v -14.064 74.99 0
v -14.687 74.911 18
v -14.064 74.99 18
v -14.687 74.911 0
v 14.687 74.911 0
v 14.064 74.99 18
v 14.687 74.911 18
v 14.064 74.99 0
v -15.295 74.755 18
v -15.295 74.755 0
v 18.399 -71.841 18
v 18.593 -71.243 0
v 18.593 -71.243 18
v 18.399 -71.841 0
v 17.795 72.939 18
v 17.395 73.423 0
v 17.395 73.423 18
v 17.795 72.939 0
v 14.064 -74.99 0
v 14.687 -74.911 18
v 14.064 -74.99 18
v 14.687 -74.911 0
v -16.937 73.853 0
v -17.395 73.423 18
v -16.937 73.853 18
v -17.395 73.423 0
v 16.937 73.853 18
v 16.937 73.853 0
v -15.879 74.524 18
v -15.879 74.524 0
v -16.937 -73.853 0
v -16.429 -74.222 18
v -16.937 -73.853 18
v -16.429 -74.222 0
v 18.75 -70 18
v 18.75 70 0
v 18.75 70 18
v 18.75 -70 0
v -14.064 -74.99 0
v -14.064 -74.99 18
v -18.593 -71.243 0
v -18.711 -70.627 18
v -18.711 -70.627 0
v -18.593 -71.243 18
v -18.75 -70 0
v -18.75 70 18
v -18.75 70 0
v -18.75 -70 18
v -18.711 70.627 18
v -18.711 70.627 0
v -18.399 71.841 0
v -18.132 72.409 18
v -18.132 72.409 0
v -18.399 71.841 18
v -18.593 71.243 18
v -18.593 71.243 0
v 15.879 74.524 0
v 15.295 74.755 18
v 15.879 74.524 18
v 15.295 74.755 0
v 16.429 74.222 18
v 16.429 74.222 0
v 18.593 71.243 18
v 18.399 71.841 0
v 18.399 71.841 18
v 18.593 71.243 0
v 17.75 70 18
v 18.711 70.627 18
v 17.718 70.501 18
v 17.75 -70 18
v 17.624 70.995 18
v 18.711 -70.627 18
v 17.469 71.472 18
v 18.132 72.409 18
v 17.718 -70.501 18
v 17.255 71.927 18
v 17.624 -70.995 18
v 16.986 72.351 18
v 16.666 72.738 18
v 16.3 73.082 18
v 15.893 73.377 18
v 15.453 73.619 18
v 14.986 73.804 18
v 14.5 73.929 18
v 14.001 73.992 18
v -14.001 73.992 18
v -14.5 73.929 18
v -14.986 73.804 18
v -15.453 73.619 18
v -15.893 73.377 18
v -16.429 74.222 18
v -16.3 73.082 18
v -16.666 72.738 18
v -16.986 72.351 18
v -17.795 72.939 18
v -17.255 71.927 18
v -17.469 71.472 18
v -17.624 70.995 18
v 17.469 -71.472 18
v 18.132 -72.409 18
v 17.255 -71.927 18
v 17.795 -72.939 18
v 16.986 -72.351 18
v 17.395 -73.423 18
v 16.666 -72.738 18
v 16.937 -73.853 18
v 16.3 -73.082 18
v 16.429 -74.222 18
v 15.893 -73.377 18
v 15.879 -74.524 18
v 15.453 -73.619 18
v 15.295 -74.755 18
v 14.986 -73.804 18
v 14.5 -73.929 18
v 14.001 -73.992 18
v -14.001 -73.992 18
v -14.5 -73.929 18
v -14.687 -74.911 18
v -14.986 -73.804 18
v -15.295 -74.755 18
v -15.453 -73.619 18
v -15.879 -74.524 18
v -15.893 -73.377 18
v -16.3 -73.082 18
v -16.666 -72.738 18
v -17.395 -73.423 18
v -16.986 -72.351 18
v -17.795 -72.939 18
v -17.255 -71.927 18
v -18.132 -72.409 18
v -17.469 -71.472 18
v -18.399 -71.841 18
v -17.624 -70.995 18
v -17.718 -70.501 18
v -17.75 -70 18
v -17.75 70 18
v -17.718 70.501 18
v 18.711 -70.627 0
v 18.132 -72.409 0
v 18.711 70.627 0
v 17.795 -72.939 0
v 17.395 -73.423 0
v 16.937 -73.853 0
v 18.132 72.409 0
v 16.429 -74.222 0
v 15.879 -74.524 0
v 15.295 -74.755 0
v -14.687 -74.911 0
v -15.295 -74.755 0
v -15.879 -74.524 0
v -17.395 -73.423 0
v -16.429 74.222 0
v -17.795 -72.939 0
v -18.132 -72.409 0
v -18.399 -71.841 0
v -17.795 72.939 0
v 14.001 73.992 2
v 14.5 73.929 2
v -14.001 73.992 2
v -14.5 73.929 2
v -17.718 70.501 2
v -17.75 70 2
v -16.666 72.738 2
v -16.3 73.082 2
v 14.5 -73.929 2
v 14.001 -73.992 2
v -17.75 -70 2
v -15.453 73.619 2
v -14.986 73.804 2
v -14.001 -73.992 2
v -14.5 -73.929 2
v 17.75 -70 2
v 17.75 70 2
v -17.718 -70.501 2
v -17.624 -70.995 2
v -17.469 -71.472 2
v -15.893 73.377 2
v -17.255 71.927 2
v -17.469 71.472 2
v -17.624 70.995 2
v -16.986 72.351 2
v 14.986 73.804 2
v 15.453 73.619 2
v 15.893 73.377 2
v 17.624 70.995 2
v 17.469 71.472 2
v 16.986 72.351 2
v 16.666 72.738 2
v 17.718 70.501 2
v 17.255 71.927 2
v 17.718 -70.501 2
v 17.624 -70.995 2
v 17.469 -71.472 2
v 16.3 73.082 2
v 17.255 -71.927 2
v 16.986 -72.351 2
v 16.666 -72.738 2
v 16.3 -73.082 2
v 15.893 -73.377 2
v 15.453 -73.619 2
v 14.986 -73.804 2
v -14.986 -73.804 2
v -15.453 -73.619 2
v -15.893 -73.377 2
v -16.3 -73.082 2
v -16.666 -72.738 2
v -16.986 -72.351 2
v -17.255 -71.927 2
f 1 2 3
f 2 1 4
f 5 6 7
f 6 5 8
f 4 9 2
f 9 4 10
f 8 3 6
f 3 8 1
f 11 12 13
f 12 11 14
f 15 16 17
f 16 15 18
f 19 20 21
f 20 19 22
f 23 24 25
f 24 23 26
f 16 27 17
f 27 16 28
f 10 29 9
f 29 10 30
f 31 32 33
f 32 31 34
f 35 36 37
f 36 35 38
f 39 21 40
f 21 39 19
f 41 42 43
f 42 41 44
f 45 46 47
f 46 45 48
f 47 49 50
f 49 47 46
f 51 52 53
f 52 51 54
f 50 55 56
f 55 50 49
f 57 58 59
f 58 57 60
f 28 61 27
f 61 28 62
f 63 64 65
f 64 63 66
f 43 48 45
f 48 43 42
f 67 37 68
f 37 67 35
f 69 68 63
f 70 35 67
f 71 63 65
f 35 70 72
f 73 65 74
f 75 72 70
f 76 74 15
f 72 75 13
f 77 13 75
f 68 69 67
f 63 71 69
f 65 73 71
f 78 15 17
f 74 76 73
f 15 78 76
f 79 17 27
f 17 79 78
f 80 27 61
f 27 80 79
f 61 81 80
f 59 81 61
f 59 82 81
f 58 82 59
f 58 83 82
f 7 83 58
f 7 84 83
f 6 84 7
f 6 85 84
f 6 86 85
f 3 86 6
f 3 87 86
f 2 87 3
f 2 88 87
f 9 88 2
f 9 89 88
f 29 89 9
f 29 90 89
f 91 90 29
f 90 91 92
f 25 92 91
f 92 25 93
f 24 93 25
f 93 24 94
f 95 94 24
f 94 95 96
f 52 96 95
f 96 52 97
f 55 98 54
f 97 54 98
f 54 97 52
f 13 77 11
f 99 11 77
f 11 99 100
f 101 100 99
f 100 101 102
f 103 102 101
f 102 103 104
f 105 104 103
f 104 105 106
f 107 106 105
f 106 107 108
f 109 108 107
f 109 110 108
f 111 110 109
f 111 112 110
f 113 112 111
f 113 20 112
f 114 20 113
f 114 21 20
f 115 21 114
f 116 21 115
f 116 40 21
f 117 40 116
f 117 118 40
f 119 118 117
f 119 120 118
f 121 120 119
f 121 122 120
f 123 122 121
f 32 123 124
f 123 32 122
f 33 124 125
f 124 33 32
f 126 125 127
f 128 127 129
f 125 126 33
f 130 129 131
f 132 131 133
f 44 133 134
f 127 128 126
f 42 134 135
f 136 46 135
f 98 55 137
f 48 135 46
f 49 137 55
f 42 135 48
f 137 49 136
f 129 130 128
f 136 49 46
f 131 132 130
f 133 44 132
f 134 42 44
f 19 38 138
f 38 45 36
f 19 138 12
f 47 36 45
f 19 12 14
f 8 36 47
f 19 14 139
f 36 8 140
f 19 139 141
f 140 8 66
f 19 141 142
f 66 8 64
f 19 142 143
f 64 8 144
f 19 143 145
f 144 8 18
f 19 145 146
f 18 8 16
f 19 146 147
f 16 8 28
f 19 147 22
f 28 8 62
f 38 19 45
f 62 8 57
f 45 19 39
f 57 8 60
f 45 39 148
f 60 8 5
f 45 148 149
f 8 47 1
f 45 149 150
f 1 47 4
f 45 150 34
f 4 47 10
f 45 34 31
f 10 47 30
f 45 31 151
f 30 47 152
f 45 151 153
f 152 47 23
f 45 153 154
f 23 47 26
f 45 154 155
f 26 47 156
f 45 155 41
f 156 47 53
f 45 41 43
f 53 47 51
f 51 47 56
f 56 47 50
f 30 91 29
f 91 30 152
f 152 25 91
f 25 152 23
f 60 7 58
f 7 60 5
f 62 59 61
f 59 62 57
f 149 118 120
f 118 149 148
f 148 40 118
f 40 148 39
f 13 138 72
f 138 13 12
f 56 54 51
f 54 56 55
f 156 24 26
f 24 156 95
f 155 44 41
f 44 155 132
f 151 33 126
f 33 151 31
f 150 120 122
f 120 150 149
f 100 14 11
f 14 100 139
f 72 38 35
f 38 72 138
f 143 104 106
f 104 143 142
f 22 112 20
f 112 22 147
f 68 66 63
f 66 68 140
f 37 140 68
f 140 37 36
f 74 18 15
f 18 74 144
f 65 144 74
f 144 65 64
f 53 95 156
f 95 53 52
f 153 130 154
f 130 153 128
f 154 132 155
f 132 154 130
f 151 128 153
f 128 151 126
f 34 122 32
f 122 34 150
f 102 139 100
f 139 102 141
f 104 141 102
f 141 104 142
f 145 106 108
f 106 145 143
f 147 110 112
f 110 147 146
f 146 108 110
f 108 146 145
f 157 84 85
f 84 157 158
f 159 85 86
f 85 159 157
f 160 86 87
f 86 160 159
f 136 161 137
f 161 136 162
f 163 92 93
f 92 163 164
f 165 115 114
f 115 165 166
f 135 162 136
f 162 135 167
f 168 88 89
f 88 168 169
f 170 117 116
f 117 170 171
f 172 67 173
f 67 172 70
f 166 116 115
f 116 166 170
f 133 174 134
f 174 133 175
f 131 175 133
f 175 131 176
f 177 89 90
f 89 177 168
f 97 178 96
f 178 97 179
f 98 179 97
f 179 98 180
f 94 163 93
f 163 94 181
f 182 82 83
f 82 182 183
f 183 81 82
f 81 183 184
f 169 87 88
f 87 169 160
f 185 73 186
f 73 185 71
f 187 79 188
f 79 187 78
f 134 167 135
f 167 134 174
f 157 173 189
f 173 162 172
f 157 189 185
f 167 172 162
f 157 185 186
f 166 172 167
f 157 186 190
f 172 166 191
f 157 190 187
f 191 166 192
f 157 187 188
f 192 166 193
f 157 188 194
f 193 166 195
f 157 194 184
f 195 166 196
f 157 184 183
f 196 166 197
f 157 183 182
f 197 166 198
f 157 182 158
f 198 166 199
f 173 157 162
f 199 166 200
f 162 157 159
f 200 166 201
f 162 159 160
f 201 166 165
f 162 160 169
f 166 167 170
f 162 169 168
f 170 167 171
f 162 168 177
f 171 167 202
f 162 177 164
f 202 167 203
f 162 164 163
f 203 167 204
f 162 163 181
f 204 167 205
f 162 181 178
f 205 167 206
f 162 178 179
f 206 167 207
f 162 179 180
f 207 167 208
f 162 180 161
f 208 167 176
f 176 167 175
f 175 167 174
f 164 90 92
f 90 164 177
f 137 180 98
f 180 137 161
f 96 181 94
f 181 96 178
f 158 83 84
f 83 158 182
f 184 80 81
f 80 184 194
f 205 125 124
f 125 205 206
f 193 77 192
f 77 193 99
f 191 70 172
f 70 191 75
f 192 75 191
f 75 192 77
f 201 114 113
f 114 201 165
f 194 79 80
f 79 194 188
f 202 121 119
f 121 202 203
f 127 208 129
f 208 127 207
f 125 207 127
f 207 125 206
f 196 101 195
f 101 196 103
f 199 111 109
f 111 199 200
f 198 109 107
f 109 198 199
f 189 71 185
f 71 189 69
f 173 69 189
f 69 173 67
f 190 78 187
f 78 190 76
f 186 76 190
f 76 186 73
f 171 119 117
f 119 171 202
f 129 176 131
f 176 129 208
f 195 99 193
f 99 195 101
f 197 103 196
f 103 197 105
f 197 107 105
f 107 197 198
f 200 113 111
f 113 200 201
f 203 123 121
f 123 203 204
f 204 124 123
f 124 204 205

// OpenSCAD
$fn = 50;


difference() {
	union() {
		hull() {
			translate(v = [-13.7500000000, 70.0000000000, 0]) {
				cylinder(h = 18, r = 5);
			}
			translate(v = [13.7500000000, 70.0000000000, 0]) {
				cylinder(h = 18, r = 5);
			}
			translate(v = [-13.7500000000, -70.0000000000, 0]) {
				cylinder(h = 18, r = 5);
			}
			translate(v = [13.7500000000, -70.0000000000, 0]) {
				cylinder(h = 18, r = 5);
			}
		}
	}
	union() {
		translate(v = [0, 0, 2]) {
			hull() {
				translate(v = [-13.7500000000, 70.0000000000, 0]) {
					cylinder(h = 16, r = 4);
				}
				translate(v = [13.7500000000, 70.0000000000, 0]) {
					cylinder(h = 16, r = 4);
				}
				translate(v = [-13.7500000000, -70.0000000000, 0]) {
					cylinder(h = 16, r = 4);
				}
				translate(v = [13.7500000000, -70.0000000000, 0]) {
					cylinder(h = 16, r = 4);
				}
			}
		}
	}
}
